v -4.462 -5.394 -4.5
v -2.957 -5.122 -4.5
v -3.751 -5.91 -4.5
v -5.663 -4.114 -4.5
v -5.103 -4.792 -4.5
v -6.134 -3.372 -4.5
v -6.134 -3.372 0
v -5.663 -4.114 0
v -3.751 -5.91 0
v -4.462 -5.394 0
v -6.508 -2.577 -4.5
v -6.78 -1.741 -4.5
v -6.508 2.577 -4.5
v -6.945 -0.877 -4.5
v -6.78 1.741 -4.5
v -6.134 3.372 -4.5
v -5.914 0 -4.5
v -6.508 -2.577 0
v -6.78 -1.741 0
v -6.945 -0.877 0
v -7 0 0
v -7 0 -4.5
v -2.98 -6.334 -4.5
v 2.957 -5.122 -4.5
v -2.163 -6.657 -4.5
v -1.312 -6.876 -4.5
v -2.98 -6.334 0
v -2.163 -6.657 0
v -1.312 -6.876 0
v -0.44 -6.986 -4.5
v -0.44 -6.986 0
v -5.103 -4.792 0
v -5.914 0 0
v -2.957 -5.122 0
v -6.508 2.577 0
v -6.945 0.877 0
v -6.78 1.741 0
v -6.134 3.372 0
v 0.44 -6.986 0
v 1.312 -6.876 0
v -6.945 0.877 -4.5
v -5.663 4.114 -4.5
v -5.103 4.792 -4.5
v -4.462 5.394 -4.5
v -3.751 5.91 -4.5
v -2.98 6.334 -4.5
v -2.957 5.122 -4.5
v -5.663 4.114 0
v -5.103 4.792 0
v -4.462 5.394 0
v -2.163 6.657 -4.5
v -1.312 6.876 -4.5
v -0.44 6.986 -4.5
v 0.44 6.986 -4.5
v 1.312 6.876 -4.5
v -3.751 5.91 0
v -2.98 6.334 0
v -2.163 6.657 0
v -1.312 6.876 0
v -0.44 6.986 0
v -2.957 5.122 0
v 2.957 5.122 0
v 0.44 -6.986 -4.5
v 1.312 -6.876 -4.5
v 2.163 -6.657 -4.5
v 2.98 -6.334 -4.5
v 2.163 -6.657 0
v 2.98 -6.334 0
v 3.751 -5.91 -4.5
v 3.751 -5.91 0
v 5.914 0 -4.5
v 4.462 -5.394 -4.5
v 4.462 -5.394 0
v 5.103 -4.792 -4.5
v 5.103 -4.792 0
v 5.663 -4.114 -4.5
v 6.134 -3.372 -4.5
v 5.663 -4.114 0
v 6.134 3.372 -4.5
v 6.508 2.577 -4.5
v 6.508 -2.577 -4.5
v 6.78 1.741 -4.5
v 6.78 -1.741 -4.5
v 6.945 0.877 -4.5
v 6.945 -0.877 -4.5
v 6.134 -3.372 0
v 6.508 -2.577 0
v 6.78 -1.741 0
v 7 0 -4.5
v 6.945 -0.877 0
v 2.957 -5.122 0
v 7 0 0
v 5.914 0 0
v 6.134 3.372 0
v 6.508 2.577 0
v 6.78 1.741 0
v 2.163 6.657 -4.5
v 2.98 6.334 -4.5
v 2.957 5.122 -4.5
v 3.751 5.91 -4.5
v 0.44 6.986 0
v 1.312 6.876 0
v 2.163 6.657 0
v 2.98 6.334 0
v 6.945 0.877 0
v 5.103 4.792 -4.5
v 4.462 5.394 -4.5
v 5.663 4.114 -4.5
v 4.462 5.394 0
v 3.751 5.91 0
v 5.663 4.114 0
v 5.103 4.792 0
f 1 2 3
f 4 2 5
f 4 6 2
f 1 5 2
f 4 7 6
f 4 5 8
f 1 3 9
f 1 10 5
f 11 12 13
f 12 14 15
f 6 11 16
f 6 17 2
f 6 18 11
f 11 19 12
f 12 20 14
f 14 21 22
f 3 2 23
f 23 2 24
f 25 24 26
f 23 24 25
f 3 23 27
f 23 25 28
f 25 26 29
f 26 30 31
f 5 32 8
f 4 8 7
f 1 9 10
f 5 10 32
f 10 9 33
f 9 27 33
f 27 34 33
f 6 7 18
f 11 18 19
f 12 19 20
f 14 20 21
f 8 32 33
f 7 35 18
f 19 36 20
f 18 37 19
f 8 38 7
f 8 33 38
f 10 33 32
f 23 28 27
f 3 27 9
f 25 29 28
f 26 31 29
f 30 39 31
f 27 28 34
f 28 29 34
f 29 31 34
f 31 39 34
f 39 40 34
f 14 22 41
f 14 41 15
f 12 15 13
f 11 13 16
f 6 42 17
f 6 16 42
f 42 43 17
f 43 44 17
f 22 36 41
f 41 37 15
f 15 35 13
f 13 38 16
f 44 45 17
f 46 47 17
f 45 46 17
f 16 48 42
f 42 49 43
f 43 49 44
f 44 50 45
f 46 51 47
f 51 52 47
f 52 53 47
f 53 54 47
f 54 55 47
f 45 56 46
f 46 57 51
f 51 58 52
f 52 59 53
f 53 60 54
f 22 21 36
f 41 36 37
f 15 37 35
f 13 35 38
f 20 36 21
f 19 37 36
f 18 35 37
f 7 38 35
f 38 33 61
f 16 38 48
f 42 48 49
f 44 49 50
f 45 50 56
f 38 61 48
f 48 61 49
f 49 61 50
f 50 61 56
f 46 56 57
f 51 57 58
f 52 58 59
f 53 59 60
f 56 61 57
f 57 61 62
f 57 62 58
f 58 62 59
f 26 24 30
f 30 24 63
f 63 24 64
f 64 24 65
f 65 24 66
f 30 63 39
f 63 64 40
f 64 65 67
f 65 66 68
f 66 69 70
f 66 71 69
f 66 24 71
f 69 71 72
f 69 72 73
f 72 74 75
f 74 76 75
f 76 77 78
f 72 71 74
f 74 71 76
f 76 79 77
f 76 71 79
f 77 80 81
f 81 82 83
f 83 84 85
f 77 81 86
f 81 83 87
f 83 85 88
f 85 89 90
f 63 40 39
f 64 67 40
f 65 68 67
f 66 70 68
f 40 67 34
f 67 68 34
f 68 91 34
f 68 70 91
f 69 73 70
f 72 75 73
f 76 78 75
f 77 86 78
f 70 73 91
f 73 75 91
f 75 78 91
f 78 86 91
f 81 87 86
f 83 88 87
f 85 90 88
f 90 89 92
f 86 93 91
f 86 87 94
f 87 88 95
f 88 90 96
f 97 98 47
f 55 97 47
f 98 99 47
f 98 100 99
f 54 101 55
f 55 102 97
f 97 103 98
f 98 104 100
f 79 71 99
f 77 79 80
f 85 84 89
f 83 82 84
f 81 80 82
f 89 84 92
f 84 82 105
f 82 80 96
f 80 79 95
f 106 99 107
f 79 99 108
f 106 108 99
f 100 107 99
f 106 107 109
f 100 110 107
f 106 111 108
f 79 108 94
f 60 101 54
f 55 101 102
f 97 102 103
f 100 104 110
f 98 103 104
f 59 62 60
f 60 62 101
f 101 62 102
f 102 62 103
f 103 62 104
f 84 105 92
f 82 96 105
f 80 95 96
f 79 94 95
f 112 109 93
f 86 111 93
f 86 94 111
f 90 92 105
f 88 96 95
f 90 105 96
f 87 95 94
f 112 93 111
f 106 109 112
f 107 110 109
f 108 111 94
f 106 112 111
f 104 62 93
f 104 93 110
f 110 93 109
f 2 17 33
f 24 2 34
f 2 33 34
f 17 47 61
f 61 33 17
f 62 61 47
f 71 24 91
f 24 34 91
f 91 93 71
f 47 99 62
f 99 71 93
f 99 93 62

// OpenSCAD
$fn = 50;

difference() {
	union() {
		translate(v = [0, 0, -4.5]) {
			cylinder(h = 4.5, r = 7.0);
		}
		#translate(v = [0, 0, -6.0]) {
			cylinder(h = 6, r = 2.875);
		}
	}
	union() {
		translate(v = [0, 0, 0]) {
			rotate(a = [0, 0, 0]) {
				difference() {
					union() {
						translate(v = [0, 0, -5]) {
							linear_extrude(height = 5) {
								polygon(points = [[5.914249999999999, 0.0], [2.957125, 5.1218907443321156], [-2.9571249999999982, 5.1218907443321156], [-5.914249999999999, 7.242867331857232e-16], [-2.9571250000000022, -5.121890744332115], [2.9571249999999956, -5.121890744332118]]);
							}
						}
					}
					union();
				}
			}
		}
		#translate(v = [0, 0, -100.0]) {
			cylinder(h = 200, r = 3.25);
		}
	}
}
